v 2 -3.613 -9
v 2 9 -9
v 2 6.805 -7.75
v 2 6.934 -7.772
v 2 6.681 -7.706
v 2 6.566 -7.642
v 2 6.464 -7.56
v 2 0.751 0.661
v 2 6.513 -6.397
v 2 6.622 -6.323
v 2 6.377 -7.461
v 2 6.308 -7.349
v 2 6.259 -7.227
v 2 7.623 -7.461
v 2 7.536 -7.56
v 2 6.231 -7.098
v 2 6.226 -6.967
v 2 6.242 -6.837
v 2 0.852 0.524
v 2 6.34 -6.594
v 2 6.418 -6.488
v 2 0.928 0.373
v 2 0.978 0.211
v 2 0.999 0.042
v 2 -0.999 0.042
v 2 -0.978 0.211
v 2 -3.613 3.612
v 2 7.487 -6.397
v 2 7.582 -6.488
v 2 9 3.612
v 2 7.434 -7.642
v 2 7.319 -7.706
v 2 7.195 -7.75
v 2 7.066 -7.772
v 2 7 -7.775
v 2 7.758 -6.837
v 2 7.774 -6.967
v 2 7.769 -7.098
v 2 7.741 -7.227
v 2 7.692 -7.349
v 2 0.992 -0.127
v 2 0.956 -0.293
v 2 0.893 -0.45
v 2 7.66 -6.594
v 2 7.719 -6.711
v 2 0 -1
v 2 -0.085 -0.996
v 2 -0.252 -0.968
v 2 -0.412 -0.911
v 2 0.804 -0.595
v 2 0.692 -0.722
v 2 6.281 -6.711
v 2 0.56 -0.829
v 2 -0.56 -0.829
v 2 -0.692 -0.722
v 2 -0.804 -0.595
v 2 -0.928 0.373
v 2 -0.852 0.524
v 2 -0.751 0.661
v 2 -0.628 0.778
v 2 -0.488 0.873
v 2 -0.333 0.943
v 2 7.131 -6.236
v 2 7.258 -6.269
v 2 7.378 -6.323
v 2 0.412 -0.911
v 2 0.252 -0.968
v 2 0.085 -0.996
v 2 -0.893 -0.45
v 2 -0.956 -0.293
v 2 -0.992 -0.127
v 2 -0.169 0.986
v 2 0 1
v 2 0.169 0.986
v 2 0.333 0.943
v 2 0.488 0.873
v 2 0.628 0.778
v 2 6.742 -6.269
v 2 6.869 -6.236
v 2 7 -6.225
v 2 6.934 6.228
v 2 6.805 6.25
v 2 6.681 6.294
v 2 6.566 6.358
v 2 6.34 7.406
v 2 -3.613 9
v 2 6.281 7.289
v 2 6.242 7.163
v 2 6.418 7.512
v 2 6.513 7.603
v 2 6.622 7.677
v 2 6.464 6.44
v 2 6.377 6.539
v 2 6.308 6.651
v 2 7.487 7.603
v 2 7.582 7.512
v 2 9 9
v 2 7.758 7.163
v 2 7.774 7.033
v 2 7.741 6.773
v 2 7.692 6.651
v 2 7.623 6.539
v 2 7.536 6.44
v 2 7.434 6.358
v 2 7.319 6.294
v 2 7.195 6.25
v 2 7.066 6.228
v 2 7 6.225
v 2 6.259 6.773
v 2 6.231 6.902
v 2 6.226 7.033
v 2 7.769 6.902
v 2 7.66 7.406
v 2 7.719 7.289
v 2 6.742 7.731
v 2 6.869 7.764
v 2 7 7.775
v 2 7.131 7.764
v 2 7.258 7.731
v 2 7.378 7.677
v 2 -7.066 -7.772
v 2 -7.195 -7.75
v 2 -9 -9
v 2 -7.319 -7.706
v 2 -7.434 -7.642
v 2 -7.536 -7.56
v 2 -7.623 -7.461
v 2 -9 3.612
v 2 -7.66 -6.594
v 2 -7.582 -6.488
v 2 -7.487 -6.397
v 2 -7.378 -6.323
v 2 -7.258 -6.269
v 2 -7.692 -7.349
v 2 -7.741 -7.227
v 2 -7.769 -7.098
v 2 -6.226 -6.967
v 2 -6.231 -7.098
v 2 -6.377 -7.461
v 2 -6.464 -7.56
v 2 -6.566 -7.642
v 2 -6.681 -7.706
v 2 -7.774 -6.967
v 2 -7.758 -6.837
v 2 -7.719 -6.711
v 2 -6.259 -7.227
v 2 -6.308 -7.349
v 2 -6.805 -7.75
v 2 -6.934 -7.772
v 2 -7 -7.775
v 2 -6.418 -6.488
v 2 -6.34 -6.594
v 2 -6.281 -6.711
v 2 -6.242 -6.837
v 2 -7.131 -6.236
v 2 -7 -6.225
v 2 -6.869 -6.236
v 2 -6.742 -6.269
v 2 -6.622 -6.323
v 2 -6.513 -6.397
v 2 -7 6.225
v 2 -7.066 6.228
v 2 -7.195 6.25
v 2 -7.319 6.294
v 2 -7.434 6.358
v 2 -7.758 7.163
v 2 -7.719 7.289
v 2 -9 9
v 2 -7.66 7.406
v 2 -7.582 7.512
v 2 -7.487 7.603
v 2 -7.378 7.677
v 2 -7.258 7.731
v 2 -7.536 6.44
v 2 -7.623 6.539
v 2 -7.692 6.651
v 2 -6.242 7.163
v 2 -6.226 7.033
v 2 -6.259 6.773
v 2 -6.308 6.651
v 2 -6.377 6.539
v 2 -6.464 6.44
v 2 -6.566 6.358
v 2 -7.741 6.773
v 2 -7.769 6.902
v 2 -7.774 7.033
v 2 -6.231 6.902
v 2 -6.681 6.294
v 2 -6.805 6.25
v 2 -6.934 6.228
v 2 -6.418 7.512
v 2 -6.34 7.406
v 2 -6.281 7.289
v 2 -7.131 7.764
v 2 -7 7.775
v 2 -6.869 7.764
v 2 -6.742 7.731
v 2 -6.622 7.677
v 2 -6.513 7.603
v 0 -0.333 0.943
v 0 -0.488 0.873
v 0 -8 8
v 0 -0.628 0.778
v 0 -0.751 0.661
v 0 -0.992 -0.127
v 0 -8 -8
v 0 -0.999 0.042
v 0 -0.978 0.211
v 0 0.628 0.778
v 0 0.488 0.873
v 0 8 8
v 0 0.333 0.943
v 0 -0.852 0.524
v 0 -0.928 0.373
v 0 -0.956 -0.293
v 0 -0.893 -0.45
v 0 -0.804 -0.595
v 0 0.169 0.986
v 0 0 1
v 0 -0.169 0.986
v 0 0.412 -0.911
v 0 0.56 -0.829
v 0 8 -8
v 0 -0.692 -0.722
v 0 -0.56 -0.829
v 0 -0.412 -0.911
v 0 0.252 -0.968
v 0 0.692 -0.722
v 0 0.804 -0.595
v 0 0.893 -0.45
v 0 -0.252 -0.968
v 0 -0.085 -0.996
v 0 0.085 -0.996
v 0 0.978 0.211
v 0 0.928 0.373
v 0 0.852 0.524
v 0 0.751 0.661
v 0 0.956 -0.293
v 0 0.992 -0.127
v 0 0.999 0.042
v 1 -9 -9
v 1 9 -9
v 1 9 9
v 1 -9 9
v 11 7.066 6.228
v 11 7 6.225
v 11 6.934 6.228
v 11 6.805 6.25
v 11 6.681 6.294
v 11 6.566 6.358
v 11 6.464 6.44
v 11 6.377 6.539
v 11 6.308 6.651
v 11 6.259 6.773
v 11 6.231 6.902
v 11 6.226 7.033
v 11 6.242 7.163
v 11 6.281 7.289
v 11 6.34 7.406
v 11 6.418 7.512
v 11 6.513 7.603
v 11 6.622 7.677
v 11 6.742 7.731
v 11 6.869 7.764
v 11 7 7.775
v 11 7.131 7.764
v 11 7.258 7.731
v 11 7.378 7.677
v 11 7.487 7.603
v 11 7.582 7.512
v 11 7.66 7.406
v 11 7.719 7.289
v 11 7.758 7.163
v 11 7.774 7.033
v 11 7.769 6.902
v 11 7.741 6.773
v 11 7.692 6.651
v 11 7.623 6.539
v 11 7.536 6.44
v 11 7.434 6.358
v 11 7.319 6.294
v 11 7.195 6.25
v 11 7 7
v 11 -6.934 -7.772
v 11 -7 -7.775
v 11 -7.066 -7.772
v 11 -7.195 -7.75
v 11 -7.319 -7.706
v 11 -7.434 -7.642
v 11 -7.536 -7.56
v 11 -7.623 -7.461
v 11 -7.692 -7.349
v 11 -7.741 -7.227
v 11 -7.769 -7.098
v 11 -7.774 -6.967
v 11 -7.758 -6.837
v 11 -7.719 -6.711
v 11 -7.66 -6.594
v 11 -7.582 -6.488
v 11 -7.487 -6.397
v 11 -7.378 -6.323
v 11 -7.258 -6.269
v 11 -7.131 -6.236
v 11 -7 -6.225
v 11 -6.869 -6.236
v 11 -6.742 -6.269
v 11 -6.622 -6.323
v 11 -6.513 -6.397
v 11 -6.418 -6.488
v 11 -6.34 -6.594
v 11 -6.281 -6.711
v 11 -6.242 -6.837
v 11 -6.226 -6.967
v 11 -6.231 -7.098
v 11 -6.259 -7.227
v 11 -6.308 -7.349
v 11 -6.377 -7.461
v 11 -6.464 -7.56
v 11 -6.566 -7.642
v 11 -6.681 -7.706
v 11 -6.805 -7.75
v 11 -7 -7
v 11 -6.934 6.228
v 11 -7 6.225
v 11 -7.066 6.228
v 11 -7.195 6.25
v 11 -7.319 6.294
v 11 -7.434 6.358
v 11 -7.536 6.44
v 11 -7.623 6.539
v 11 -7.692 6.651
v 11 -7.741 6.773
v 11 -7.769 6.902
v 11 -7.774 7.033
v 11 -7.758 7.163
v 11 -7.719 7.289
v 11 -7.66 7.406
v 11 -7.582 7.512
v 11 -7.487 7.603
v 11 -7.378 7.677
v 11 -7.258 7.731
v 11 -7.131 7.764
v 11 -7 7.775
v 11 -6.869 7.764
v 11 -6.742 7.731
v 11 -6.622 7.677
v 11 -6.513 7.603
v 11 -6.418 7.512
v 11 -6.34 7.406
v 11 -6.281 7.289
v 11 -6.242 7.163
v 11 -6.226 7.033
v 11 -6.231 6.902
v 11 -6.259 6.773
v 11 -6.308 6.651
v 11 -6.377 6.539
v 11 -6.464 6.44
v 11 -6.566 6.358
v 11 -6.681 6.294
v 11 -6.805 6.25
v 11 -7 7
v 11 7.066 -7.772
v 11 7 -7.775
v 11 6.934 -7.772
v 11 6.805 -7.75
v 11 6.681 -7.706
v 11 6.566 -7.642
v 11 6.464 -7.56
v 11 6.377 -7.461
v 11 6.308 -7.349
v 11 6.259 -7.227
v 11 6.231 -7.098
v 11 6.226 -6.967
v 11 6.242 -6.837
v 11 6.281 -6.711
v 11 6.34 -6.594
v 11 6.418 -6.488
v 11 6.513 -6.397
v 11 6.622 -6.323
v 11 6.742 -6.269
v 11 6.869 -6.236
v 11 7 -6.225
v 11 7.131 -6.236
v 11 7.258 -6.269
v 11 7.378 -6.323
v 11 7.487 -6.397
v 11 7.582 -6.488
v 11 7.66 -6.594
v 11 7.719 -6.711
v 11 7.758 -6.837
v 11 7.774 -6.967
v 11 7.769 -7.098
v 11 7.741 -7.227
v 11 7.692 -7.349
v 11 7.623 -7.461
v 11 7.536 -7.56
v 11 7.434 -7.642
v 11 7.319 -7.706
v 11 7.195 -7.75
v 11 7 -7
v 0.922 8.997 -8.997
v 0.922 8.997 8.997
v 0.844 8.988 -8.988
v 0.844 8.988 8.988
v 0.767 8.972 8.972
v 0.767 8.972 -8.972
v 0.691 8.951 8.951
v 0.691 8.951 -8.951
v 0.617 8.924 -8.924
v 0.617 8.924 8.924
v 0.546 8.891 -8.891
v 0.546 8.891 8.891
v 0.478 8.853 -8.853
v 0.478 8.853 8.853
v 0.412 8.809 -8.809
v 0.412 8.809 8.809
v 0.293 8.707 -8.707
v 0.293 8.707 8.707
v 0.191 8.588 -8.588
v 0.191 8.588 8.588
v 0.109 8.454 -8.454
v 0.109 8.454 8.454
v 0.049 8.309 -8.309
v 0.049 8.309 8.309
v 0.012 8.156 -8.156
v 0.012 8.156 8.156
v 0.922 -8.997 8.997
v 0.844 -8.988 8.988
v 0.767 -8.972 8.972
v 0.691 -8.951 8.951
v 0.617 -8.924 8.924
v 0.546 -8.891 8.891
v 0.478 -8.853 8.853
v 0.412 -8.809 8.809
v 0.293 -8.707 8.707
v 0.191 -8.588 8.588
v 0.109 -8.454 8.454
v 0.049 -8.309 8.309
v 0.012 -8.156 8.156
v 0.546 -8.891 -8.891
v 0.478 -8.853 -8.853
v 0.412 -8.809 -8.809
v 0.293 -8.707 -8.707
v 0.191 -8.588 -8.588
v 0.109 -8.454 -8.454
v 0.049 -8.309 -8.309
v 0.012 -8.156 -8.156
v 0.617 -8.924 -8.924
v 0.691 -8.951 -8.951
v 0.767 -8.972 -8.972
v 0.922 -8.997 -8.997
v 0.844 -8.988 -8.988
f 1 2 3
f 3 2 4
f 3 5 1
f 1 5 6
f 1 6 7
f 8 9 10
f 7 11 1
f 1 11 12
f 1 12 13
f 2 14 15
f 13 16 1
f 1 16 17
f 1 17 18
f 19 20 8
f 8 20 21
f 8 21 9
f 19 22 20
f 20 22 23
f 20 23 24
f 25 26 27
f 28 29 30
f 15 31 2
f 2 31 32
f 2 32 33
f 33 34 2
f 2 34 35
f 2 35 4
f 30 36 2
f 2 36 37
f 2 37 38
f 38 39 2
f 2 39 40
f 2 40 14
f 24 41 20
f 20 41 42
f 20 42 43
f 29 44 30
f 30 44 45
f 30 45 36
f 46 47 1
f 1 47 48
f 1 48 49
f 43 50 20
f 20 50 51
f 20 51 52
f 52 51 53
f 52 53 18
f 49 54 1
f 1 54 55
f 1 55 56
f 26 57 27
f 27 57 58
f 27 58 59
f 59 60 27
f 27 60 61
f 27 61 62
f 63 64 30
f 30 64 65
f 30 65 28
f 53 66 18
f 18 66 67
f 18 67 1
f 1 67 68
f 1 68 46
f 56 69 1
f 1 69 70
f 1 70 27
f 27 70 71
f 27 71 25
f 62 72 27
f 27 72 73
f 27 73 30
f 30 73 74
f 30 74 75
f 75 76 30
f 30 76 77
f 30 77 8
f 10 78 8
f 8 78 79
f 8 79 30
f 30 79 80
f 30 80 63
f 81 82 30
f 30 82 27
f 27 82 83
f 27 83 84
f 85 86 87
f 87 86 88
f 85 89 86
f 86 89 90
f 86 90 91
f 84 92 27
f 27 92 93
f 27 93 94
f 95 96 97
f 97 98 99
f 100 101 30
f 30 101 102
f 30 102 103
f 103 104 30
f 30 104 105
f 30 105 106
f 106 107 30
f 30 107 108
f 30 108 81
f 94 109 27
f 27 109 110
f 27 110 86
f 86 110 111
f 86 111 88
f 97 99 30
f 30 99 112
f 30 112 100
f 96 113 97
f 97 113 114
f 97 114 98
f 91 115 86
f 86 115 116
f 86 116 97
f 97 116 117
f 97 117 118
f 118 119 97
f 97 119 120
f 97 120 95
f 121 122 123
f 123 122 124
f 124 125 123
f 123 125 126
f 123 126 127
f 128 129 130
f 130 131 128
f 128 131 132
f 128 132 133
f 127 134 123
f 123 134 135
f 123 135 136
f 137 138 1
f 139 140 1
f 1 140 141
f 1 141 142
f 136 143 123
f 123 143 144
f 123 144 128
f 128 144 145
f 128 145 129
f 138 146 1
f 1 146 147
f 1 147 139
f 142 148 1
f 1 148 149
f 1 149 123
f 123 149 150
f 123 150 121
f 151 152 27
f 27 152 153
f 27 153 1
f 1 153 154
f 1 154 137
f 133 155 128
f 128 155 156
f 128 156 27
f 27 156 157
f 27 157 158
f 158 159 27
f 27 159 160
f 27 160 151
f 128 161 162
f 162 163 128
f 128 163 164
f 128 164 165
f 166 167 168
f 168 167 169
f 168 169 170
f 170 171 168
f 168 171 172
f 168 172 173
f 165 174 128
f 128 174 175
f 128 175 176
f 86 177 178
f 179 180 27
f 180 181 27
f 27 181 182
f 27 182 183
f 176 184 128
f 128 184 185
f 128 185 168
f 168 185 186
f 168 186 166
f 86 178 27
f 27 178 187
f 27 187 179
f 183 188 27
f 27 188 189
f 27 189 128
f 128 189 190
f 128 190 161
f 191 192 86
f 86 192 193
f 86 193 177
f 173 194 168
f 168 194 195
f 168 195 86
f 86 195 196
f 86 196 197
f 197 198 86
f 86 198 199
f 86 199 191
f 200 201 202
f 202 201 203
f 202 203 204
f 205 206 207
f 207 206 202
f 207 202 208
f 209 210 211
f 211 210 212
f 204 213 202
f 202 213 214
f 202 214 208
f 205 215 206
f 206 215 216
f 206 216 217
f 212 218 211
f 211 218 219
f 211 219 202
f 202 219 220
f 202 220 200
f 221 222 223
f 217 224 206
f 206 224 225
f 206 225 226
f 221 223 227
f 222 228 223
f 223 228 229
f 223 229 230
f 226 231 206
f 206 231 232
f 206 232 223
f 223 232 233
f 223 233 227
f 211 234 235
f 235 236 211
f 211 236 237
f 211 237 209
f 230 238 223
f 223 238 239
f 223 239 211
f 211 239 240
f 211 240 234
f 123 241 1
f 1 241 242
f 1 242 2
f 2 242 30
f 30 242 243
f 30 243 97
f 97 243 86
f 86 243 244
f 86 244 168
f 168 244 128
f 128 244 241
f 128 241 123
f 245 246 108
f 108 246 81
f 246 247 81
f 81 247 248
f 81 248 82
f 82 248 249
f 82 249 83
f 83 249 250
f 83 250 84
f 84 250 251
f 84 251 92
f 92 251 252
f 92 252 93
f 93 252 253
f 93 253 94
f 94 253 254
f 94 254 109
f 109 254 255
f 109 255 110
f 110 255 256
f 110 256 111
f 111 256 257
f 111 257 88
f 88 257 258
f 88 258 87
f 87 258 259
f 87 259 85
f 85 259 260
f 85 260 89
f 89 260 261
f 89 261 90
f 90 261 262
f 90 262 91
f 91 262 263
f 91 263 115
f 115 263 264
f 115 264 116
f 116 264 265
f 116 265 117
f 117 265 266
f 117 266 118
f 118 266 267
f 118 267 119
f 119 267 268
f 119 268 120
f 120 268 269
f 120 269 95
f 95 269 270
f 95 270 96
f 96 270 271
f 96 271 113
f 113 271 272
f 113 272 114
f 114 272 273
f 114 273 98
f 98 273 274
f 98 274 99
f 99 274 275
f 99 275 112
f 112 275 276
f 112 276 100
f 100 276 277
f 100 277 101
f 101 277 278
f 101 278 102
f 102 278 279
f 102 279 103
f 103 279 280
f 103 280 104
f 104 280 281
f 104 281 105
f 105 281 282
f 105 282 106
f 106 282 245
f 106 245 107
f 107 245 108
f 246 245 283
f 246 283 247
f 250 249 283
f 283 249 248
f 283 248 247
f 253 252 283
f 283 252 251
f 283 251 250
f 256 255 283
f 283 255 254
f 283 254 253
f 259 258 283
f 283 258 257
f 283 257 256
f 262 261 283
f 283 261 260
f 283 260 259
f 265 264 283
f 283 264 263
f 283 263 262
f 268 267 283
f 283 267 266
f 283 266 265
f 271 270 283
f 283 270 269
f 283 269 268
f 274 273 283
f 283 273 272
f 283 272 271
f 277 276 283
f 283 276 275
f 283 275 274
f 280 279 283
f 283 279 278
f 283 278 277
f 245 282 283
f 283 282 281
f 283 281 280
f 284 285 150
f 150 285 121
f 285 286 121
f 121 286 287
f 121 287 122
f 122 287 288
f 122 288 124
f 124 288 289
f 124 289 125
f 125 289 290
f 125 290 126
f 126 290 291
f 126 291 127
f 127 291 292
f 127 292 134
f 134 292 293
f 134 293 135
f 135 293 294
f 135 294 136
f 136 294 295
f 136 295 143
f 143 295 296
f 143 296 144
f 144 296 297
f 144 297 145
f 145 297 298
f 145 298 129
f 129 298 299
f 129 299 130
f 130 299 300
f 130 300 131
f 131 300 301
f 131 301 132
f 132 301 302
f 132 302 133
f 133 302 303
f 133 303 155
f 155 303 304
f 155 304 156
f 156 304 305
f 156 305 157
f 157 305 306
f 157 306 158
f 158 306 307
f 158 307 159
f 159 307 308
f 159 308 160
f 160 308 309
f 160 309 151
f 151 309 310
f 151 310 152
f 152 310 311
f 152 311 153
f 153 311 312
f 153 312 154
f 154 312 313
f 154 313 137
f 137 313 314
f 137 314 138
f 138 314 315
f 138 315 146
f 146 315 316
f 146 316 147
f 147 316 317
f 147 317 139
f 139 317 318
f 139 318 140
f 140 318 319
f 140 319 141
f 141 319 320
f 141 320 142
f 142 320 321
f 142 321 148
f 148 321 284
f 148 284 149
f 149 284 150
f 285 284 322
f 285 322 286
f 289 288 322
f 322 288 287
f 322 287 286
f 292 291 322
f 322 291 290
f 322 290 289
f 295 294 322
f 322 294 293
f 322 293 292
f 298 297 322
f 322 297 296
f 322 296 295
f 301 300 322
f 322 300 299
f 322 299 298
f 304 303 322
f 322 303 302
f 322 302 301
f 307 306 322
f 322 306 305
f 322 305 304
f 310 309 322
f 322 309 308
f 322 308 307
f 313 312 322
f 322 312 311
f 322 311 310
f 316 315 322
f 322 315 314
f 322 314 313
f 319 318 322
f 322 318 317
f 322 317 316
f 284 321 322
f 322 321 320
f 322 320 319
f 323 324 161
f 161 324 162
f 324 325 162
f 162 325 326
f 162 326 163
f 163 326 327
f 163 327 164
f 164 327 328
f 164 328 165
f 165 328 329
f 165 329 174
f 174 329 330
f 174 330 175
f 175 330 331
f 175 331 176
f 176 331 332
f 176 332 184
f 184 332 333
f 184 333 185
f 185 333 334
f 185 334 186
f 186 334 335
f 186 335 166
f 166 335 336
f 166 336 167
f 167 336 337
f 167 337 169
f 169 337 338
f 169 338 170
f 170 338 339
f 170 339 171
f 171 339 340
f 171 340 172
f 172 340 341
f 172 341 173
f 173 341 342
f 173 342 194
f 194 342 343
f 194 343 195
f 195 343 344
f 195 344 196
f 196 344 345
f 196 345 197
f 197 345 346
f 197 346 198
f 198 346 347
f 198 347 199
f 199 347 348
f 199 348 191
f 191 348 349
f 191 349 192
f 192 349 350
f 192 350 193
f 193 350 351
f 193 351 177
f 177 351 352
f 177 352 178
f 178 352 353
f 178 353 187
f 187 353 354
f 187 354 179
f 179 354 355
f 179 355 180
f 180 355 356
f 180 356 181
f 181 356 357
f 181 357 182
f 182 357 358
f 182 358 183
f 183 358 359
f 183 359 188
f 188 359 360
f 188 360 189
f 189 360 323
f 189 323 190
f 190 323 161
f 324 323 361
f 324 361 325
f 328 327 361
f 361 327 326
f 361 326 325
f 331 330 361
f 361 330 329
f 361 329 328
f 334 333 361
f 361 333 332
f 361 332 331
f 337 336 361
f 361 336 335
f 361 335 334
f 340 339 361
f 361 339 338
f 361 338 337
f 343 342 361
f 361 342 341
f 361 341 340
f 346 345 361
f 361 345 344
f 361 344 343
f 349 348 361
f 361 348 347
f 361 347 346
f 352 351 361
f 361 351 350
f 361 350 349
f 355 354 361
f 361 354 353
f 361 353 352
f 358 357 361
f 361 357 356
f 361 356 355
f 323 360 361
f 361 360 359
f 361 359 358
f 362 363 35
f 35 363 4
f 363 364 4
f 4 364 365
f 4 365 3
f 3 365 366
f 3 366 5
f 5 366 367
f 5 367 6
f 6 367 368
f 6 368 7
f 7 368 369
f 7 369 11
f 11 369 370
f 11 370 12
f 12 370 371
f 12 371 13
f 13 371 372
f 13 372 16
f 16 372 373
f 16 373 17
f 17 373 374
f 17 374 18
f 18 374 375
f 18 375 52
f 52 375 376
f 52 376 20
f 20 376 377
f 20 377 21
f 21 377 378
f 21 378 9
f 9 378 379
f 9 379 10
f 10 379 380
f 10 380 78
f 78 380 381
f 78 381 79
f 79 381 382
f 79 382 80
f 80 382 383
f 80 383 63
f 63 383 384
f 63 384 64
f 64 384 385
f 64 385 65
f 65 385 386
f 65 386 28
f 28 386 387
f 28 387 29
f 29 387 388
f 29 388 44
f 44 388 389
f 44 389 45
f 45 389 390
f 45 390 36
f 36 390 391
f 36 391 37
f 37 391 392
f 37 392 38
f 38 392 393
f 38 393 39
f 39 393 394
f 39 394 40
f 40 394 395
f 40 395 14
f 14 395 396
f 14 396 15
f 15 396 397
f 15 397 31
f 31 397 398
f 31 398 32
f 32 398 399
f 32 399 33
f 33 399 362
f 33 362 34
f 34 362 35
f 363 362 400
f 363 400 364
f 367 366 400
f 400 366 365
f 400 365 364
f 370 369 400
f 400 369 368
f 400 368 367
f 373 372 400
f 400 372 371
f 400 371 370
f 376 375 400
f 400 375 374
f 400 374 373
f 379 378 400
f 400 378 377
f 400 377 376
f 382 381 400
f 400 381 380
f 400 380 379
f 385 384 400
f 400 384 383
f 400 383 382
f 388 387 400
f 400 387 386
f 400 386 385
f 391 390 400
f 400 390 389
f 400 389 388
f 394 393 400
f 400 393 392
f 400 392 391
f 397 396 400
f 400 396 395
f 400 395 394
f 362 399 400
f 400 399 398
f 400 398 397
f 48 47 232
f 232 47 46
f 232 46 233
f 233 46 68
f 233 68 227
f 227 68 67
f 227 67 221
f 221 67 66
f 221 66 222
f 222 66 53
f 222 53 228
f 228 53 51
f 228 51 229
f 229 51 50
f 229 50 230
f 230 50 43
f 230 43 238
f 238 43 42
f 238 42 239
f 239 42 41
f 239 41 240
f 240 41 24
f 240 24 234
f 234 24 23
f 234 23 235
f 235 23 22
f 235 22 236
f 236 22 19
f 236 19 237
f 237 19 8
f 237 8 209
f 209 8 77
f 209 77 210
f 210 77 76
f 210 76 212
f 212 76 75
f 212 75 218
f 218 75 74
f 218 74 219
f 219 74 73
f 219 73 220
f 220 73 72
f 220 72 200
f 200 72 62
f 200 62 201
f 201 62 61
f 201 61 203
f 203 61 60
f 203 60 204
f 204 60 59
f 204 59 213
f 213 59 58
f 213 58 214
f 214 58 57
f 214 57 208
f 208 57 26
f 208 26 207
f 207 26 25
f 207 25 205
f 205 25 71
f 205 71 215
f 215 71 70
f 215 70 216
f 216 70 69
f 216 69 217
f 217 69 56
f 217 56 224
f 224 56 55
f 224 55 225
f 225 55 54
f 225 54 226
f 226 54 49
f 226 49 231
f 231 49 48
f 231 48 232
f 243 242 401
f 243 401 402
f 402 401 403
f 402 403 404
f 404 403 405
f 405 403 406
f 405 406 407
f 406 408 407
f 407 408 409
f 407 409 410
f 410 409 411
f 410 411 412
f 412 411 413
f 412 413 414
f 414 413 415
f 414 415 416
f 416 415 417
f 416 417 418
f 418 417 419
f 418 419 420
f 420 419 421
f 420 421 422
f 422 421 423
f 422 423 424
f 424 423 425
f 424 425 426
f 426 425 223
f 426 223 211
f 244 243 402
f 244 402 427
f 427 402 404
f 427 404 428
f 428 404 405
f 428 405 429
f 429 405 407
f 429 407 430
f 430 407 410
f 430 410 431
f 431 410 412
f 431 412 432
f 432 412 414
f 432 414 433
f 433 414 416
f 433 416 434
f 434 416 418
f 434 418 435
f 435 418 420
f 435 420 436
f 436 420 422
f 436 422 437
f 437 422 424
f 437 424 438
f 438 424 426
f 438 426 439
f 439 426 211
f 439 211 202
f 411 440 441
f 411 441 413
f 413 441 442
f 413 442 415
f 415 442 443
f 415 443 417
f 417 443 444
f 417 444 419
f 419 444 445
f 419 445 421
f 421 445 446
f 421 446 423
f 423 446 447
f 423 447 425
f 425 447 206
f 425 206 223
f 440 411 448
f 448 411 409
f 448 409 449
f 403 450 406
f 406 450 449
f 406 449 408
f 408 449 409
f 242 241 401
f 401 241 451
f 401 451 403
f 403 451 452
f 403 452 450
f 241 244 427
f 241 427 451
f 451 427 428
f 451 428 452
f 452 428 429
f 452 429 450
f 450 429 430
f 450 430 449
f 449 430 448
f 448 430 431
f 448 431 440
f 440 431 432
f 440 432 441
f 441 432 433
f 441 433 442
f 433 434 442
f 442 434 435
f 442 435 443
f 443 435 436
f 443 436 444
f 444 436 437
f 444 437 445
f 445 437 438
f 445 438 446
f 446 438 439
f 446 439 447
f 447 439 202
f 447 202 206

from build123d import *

# Parameters (mm, degrees)
SKETCH1_W           = 18
SKETCH1_H           = 18
SKETCH1_R           = 0.75
BOSS_EXTRUDE1_DEPTH = 2
SKETCH2_R           = 0.775
BOSS_EXTRUDE2_DEPTH = 9
SKETCH3_R           = 1
CUT_EXTRUDE1_DEPTH  = 9
FILLET2_R           = 1


with BuildPart() as part:
    # Sketch1 → Boss-Extrude1 (new body)
    # profile 1 of 5: a face of its own
    with BuildSketch(Plane(origin=(0, 0, 0), x_dir=(0, 0, -1), z_dir=(1, 0, 0))):
        Rectangle(SKETCH1_W, SKETCH1_H)
        with Locations((-7, -7)):
            Circle(SKETCH1_R, mode=Mode.SUBTRACT)
        with Locations((7, -7)):
            Circle(SKETCH1_R, mode=Mode.SUBTRACT)
        with Locations((7, 7)):
            Circle(SKETCH1_R, mode=Mode.SUBTRACT)
        with Locations((-7, 7)):
            Circle(SKETCH1_R, mode=Mode.SUBTRACT)
    # profile 2 of 5: a face of its own
    with BuildSketch(Plane(origin=(0, 0, 0), x_dir=(0, 0, -1), z_dir=(1, 0, 0))):
        with Locations((7, 7)):
            Circle(SKETCH1_R)
    # profile 3 of 5: a face of its own
    with BuildSketch(Plane(origin=(0, 0, 0), x_dir=(0, 0, -1), z_dir=(1, 0, 0))):
        with Locations((-7, 7)):
            Circle(SKETCH1_R)
    # profile 4 of 5: a face of its own
    with BuildSketch(Plane(origin=(0, 0, 0), x_dir=(0, 0, -1), z_dir=(1, 0, 0))):
        with Locations((-7, -7)):
            Circle(SKETCH1_R)
    # profile 5 of 5: a face of its own
    with BuildSketch(Plane(origin=(0, 0, 0), x_dir=(0, 0, -1), z_dir=(1, 0, 0))):
        with Locations((7, -7)):
            Circle(SKETCH1_R)
    extrude(amount=BOSS_EXTRUDE1_DEPTH)

    # Sketch2 → Boss-Extrude2 (add)
    with BuildSketch(Plane(origin=(2, 0, 0), x_dir=(0, 0, -1), z_dir=(1, 0, 0))):
        with Locations((-7, 7)):
            Circle(SKETCH2_R)
        with Locations((-7, -7)):
            Circle(SKETCH2_R)
        with Locations((7, -7)):
            Circle(SKETCH2_R)
        with Locations((7, 7)):
            Circle(SKETCH2_R)
    extrude(amount=BOSS_EXTRUDE2_DEPTH)

    # Sketch3 → Cut-Extrude1 (cut)
    with BuildSketch(Plane.ZY):
        Circle(SKETCH3_R)
    extrude(amount=-CUT_EXTRUDE1_DEPTH, mode=Mode.SUBTRACT)

    # Fillet2
    fillet2_edges = [part.edges().sort_by_distance(p)[0] for p in [
        (0, 0, 9),
        (0, 9, 0),
        (0, 0, -9),
        (0, -9, 0),
    ]]
    fillet(fillet2_edges, radius=FILLET2_R)


solid = part.part
